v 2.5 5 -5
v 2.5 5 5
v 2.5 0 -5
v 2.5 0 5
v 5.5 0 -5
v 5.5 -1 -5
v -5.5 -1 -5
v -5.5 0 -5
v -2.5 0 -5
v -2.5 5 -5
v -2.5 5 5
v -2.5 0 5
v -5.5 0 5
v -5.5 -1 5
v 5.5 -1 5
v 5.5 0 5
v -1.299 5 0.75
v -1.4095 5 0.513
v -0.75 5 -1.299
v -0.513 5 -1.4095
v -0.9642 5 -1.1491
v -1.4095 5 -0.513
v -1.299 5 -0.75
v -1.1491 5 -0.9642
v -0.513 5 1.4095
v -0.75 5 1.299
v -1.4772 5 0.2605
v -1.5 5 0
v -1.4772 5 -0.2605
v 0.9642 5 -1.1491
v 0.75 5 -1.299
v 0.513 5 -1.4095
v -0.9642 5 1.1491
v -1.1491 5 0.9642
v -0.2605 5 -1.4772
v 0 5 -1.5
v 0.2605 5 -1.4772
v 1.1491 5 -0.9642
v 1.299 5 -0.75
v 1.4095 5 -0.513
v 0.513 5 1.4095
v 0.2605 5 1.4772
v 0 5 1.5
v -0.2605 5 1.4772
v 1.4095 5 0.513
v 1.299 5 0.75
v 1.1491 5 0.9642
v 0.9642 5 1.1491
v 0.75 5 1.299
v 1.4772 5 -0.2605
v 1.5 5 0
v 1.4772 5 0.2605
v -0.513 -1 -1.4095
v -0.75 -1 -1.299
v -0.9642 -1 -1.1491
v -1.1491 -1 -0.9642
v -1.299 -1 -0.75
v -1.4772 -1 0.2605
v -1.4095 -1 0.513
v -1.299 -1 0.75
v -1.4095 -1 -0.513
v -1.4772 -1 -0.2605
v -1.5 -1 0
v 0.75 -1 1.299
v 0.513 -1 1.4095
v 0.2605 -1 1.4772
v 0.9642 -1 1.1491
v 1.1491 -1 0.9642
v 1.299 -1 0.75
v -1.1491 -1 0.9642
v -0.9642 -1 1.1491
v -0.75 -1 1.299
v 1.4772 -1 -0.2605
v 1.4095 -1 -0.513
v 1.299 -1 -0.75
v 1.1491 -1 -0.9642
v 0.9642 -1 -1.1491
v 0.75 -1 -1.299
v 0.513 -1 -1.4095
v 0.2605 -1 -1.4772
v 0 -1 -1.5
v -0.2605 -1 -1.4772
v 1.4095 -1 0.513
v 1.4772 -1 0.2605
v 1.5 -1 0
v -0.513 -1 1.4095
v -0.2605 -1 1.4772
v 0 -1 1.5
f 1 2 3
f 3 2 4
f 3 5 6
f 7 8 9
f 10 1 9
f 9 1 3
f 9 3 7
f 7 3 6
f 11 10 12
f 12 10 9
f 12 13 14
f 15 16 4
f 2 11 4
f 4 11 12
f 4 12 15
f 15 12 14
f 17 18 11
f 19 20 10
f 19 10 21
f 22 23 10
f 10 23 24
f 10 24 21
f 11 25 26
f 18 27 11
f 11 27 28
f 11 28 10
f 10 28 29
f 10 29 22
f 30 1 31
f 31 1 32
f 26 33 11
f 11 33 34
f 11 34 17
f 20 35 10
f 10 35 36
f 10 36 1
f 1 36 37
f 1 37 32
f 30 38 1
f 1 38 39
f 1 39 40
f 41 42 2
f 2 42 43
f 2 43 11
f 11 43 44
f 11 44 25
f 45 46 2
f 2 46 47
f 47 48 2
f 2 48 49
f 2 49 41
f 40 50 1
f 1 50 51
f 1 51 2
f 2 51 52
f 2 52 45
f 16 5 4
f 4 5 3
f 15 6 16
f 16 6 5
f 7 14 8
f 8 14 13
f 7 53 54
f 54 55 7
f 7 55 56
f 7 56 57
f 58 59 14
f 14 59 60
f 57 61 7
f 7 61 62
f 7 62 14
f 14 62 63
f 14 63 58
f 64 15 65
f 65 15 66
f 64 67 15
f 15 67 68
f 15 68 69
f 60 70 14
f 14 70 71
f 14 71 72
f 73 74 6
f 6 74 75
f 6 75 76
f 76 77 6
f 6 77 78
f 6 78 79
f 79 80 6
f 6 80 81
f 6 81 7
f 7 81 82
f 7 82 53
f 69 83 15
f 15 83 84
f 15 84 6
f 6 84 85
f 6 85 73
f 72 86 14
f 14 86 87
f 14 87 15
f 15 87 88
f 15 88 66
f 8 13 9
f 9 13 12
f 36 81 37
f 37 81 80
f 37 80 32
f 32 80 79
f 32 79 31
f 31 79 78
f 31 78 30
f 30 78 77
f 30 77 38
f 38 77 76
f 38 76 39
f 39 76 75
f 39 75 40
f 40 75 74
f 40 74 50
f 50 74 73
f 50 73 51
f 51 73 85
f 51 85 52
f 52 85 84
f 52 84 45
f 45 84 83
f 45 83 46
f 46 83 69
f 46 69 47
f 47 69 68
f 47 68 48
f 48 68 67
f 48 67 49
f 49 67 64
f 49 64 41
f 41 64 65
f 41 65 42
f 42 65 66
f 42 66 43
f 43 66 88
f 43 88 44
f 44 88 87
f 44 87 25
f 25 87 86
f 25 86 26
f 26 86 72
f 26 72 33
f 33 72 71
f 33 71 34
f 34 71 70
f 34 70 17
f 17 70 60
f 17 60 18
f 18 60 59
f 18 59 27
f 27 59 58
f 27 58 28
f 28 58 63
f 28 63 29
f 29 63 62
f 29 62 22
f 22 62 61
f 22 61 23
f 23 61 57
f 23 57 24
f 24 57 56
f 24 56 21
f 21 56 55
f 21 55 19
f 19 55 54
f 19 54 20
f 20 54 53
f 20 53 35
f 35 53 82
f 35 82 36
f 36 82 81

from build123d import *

# Parameters (mm, degrees)
SKETCH1_W           = 5
SKETCH1_H           = 10
BOSS_EXTRUDE1_DEPTH = 5
SKETCH2_W           = 11
SKETCH2_H           = 10
BOSS_EXTRUDE2_DEPTH = 1
SKETCH3_R           = 1.5
CUT_EXTRUDE1_DEPTH  = 10.552486587


with BuildPart() as part:
    # Sketch1 → Boss-Extrude1 (new body)
    with BuildSketch(Plane(origin=(0, 0, 0), x_dir=(1, 0, 0), z_dir=(0, 1, 0))):
        Rectangle(SKETCH1_W, SKETCH1_H)
    extrude(amount=BOSS_EXTRUDE1_DEPTH)

    # Sketch2 → Boss-Extrude2 (add)
    with BuildSketch(Plane.XZ):
        Rectangle(SKETCH2_W, SKETCH2_H)
    extrude(amount=BOSS_EXTRUDE2_DEPTH)

    # Sketch3 → Cut-Extrude1 (cut, through all)
    with BuildSketch(Plane.XZ.offset(1)):
        with Locations(Location((0, 0, 0), (0, 0, 270))):
            Circle(SKETCH3_R)
    extrude(amount=-CUT_EXTRUDE1_DEPTH, mode=Mode.SUBTRACT)


solid = part.part
